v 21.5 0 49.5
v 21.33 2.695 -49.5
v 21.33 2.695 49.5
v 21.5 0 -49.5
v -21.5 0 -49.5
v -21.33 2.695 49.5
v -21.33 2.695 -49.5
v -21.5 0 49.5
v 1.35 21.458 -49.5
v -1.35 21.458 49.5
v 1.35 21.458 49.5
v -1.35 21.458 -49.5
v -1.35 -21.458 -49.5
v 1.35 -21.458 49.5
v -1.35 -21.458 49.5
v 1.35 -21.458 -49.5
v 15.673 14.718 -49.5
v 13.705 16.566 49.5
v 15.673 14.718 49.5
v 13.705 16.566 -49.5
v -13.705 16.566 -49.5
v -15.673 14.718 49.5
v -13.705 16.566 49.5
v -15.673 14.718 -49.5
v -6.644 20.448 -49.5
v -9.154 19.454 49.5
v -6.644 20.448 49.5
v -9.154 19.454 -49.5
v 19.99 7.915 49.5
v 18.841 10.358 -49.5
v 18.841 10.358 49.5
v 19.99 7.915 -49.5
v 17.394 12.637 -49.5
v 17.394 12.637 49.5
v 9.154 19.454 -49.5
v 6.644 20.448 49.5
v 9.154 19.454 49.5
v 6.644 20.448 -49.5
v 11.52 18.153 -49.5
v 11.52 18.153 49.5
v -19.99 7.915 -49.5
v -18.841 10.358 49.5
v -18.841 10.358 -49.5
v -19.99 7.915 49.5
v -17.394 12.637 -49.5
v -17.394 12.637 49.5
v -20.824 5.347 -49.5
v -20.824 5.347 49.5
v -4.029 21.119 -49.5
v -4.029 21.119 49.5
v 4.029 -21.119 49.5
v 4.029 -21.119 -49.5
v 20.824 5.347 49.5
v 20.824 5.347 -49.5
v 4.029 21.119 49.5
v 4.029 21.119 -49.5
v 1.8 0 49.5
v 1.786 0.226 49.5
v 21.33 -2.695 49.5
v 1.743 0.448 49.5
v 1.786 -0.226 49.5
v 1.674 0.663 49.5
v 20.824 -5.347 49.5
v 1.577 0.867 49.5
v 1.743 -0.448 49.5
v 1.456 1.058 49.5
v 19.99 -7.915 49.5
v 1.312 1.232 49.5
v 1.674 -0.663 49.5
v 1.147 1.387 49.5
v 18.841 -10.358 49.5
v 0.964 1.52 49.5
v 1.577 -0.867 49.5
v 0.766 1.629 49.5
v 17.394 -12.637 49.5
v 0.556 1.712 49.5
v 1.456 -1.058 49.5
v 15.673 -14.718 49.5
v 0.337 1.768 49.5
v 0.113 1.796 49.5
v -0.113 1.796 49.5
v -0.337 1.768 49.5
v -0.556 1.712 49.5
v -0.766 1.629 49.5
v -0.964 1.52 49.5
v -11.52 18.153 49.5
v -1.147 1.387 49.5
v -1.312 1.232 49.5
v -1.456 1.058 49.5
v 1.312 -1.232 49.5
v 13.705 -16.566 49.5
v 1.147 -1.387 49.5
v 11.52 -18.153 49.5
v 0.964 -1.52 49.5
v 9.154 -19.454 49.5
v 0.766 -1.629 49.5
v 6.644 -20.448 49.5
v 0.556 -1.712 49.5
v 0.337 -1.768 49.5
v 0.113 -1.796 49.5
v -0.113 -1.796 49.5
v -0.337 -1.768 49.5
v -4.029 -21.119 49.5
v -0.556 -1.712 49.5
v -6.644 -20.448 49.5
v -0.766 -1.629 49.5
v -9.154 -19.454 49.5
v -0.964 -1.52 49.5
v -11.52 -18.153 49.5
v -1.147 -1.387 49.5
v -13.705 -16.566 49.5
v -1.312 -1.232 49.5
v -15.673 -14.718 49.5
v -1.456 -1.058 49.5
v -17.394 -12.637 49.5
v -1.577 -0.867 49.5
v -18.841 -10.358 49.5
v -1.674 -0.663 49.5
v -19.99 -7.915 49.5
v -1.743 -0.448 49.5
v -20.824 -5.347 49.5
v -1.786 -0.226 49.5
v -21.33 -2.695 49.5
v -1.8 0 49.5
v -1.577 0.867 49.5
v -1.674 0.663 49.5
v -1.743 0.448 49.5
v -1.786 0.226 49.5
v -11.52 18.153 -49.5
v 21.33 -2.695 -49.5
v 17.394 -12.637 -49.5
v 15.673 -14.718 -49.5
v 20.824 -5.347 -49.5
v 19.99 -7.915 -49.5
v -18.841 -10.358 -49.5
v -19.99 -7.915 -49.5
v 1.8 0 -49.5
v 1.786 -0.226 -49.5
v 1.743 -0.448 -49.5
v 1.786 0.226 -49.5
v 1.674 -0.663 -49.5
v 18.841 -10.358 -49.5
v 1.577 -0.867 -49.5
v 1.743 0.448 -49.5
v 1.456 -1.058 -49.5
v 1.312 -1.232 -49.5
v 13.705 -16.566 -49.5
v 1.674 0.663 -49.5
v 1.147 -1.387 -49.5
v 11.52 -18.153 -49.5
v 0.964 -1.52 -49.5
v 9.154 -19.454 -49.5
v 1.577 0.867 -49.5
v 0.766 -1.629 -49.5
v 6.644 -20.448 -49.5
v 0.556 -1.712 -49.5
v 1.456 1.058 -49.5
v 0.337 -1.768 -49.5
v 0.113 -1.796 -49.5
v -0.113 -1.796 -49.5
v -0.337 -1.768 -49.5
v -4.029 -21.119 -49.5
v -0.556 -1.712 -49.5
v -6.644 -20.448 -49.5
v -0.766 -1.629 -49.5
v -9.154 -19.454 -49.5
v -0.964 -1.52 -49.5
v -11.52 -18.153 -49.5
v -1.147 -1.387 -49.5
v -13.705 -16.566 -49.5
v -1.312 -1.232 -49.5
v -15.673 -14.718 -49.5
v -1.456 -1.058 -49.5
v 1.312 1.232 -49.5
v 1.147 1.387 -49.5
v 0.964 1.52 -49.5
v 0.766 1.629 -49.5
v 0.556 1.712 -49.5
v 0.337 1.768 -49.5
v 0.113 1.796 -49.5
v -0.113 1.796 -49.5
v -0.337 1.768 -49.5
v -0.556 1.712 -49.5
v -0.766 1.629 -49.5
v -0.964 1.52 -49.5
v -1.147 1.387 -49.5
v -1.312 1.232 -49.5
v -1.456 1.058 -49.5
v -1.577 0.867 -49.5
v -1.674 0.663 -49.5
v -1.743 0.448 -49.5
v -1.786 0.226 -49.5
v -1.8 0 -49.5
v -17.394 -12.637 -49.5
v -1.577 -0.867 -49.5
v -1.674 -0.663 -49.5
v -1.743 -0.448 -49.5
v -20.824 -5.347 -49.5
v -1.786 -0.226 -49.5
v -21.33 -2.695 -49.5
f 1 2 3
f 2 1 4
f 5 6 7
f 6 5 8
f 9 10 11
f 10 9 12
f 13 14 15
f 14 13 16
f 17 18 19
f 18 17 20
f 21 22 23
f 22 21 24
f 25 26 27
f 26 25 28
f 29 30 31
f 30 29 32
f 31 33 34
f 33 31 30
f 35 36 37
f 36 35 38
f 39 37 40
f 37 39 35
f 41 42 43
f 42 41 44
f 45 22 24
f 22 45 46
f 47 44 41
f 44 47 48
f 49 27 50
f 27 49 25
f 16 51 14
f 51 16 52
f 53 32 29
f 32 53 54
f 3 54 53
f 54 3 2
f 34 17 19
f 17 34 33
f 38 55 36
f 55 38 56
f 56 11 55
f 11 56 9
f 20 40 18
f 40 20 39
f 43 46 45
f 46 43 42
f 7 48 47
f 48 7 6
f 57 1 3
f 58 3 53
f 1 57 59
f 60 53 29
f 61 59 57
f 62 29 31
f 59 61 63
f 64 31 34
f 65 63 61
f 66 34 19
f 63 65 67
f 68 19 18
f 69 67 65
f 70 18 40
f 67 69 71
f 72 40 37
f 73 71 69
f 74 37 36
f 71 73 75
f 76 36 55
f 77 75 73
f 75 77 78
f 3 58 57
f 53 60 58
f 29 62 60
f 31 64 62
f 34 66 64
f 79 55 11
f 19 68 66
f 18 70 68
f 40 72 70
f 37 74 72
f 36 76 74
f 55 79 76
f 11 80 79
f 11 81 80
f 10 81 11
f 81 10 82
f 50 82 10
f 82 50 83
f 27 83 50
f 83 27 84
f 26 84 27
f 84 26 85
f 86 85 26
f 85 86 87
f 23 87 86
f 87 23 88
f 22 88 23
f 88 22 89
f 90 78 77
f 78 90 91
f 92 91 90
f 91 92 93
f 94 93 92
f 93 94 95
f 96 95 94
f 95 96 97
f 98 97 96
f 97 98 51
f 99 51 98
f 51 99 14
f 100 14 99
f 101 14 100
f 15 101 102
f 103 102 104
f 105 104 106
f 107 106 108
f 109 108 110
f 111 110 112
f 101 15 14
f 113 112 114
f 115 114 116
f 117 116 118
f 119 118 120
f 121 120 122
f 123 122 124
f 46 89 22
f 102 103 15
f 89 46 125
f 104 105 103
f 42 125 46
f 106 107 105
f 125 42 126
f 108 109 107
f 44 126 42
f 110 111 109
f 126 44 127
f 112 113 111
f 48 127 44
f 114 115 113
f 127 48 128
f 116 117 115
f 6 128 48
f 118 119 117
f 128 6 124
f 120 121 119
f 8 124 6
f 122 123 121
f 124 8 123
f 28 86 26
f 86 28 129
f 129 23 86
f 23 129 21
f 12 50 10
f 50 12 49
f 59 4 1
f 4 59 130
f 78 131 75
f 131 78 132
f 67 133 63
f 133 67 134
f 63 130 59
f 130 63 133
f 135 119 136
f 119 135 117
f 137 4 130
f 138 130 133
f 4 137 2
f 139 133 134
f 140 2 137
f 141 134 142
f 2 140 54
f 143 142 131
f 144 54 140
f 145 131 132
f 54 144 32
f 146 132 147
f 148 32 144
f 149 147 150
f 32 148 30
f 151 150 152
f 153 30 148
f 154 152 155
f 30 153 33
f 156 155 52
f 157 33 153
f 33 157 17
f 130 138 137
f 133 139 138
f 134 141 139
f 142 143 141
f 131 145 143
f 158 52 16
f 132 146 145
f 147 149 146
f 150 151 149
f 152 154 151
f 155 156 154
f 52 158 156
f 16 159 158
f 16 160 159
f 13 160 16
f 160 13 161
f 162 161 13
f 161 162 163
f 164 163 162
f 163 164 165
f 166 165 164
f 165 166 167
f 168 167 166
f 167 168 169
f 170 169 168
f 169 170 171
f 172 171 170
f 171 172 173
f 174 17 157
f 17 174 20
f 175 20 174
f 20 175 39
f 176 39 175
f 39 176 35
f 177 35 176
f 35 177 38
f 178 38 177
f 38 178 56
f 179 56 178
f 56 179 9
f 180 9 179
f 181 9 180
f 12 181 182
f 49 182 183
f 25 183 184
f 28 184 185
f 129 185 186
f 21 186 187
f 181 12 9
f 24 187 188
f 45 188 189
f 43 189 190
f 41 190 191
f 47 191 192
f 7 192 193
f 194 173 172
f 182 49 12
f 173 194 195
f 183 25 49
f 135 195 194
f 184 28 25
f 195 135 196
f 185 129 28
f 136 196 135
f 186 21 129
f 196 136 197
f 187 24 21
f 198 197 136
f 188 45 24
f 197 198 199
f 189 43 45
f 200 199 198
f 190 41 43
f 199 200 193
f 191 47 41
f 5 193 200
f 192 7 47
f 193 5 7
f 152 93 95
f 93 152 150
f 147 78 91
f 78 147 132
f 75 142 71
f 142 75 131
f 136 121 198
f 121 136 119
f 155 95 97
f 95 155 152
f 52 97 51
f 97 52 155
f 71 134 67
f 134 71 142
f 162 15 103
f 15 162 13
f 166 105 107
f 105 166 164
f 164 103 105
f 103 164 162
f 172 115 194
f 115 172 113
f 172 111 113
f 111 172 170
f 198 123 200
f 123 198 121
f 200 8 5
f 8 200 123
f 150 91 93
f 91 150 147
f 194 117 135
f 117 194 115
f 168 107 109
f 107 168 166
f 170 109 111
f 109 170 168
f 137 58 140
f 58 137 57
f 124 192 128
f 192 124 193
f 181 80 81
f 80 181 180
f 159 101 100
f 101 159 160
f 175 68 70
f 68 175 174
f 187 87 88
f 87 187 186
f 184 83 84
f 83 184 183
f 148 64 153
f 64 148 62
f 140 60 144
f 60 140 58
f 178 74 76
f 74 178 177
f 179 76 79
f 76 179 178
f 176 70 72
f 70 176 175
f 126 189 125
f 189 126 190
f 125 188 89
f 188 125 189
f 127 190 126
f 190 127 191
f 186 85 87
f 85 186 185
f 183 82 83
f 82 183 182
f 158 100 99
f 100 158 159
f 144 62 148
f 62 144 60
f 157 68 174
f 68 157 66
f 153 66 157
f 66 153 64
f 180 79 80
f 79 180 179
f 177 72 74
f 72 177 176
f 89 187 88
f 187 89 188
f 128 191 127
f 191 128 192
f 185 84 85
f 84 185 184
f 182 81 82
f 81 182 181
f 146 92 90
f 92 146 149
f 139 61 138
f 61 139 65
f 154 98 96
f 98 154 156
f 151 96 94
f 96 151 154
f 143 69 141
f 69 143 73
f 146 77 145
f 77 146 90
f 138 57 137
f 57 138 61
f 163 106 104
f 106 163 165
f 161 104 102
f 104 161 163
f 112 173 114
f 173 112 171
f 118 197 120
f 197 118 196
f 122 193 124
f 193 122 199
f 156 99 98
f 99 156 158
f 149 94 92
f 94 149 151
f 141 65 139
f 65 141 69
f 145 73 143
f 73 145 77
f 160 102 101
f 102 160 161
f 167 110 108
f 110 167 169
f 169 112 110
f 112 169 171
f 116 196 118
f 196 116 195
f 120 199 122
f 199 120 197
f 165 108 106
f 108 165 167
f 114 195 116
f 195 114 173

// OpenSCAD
$fn = 50;


difference() {
	union() {
		translate(v = [0, 0, -49.5000000000]) {
			cylinder(h = 99, r = 21.5000000000);
		}
	}
	union() {
		translate(v = [0, 0, -100.0000000000]) {
			cylinder(h = 200, r = 1.8000000000);
		}
	}
}
